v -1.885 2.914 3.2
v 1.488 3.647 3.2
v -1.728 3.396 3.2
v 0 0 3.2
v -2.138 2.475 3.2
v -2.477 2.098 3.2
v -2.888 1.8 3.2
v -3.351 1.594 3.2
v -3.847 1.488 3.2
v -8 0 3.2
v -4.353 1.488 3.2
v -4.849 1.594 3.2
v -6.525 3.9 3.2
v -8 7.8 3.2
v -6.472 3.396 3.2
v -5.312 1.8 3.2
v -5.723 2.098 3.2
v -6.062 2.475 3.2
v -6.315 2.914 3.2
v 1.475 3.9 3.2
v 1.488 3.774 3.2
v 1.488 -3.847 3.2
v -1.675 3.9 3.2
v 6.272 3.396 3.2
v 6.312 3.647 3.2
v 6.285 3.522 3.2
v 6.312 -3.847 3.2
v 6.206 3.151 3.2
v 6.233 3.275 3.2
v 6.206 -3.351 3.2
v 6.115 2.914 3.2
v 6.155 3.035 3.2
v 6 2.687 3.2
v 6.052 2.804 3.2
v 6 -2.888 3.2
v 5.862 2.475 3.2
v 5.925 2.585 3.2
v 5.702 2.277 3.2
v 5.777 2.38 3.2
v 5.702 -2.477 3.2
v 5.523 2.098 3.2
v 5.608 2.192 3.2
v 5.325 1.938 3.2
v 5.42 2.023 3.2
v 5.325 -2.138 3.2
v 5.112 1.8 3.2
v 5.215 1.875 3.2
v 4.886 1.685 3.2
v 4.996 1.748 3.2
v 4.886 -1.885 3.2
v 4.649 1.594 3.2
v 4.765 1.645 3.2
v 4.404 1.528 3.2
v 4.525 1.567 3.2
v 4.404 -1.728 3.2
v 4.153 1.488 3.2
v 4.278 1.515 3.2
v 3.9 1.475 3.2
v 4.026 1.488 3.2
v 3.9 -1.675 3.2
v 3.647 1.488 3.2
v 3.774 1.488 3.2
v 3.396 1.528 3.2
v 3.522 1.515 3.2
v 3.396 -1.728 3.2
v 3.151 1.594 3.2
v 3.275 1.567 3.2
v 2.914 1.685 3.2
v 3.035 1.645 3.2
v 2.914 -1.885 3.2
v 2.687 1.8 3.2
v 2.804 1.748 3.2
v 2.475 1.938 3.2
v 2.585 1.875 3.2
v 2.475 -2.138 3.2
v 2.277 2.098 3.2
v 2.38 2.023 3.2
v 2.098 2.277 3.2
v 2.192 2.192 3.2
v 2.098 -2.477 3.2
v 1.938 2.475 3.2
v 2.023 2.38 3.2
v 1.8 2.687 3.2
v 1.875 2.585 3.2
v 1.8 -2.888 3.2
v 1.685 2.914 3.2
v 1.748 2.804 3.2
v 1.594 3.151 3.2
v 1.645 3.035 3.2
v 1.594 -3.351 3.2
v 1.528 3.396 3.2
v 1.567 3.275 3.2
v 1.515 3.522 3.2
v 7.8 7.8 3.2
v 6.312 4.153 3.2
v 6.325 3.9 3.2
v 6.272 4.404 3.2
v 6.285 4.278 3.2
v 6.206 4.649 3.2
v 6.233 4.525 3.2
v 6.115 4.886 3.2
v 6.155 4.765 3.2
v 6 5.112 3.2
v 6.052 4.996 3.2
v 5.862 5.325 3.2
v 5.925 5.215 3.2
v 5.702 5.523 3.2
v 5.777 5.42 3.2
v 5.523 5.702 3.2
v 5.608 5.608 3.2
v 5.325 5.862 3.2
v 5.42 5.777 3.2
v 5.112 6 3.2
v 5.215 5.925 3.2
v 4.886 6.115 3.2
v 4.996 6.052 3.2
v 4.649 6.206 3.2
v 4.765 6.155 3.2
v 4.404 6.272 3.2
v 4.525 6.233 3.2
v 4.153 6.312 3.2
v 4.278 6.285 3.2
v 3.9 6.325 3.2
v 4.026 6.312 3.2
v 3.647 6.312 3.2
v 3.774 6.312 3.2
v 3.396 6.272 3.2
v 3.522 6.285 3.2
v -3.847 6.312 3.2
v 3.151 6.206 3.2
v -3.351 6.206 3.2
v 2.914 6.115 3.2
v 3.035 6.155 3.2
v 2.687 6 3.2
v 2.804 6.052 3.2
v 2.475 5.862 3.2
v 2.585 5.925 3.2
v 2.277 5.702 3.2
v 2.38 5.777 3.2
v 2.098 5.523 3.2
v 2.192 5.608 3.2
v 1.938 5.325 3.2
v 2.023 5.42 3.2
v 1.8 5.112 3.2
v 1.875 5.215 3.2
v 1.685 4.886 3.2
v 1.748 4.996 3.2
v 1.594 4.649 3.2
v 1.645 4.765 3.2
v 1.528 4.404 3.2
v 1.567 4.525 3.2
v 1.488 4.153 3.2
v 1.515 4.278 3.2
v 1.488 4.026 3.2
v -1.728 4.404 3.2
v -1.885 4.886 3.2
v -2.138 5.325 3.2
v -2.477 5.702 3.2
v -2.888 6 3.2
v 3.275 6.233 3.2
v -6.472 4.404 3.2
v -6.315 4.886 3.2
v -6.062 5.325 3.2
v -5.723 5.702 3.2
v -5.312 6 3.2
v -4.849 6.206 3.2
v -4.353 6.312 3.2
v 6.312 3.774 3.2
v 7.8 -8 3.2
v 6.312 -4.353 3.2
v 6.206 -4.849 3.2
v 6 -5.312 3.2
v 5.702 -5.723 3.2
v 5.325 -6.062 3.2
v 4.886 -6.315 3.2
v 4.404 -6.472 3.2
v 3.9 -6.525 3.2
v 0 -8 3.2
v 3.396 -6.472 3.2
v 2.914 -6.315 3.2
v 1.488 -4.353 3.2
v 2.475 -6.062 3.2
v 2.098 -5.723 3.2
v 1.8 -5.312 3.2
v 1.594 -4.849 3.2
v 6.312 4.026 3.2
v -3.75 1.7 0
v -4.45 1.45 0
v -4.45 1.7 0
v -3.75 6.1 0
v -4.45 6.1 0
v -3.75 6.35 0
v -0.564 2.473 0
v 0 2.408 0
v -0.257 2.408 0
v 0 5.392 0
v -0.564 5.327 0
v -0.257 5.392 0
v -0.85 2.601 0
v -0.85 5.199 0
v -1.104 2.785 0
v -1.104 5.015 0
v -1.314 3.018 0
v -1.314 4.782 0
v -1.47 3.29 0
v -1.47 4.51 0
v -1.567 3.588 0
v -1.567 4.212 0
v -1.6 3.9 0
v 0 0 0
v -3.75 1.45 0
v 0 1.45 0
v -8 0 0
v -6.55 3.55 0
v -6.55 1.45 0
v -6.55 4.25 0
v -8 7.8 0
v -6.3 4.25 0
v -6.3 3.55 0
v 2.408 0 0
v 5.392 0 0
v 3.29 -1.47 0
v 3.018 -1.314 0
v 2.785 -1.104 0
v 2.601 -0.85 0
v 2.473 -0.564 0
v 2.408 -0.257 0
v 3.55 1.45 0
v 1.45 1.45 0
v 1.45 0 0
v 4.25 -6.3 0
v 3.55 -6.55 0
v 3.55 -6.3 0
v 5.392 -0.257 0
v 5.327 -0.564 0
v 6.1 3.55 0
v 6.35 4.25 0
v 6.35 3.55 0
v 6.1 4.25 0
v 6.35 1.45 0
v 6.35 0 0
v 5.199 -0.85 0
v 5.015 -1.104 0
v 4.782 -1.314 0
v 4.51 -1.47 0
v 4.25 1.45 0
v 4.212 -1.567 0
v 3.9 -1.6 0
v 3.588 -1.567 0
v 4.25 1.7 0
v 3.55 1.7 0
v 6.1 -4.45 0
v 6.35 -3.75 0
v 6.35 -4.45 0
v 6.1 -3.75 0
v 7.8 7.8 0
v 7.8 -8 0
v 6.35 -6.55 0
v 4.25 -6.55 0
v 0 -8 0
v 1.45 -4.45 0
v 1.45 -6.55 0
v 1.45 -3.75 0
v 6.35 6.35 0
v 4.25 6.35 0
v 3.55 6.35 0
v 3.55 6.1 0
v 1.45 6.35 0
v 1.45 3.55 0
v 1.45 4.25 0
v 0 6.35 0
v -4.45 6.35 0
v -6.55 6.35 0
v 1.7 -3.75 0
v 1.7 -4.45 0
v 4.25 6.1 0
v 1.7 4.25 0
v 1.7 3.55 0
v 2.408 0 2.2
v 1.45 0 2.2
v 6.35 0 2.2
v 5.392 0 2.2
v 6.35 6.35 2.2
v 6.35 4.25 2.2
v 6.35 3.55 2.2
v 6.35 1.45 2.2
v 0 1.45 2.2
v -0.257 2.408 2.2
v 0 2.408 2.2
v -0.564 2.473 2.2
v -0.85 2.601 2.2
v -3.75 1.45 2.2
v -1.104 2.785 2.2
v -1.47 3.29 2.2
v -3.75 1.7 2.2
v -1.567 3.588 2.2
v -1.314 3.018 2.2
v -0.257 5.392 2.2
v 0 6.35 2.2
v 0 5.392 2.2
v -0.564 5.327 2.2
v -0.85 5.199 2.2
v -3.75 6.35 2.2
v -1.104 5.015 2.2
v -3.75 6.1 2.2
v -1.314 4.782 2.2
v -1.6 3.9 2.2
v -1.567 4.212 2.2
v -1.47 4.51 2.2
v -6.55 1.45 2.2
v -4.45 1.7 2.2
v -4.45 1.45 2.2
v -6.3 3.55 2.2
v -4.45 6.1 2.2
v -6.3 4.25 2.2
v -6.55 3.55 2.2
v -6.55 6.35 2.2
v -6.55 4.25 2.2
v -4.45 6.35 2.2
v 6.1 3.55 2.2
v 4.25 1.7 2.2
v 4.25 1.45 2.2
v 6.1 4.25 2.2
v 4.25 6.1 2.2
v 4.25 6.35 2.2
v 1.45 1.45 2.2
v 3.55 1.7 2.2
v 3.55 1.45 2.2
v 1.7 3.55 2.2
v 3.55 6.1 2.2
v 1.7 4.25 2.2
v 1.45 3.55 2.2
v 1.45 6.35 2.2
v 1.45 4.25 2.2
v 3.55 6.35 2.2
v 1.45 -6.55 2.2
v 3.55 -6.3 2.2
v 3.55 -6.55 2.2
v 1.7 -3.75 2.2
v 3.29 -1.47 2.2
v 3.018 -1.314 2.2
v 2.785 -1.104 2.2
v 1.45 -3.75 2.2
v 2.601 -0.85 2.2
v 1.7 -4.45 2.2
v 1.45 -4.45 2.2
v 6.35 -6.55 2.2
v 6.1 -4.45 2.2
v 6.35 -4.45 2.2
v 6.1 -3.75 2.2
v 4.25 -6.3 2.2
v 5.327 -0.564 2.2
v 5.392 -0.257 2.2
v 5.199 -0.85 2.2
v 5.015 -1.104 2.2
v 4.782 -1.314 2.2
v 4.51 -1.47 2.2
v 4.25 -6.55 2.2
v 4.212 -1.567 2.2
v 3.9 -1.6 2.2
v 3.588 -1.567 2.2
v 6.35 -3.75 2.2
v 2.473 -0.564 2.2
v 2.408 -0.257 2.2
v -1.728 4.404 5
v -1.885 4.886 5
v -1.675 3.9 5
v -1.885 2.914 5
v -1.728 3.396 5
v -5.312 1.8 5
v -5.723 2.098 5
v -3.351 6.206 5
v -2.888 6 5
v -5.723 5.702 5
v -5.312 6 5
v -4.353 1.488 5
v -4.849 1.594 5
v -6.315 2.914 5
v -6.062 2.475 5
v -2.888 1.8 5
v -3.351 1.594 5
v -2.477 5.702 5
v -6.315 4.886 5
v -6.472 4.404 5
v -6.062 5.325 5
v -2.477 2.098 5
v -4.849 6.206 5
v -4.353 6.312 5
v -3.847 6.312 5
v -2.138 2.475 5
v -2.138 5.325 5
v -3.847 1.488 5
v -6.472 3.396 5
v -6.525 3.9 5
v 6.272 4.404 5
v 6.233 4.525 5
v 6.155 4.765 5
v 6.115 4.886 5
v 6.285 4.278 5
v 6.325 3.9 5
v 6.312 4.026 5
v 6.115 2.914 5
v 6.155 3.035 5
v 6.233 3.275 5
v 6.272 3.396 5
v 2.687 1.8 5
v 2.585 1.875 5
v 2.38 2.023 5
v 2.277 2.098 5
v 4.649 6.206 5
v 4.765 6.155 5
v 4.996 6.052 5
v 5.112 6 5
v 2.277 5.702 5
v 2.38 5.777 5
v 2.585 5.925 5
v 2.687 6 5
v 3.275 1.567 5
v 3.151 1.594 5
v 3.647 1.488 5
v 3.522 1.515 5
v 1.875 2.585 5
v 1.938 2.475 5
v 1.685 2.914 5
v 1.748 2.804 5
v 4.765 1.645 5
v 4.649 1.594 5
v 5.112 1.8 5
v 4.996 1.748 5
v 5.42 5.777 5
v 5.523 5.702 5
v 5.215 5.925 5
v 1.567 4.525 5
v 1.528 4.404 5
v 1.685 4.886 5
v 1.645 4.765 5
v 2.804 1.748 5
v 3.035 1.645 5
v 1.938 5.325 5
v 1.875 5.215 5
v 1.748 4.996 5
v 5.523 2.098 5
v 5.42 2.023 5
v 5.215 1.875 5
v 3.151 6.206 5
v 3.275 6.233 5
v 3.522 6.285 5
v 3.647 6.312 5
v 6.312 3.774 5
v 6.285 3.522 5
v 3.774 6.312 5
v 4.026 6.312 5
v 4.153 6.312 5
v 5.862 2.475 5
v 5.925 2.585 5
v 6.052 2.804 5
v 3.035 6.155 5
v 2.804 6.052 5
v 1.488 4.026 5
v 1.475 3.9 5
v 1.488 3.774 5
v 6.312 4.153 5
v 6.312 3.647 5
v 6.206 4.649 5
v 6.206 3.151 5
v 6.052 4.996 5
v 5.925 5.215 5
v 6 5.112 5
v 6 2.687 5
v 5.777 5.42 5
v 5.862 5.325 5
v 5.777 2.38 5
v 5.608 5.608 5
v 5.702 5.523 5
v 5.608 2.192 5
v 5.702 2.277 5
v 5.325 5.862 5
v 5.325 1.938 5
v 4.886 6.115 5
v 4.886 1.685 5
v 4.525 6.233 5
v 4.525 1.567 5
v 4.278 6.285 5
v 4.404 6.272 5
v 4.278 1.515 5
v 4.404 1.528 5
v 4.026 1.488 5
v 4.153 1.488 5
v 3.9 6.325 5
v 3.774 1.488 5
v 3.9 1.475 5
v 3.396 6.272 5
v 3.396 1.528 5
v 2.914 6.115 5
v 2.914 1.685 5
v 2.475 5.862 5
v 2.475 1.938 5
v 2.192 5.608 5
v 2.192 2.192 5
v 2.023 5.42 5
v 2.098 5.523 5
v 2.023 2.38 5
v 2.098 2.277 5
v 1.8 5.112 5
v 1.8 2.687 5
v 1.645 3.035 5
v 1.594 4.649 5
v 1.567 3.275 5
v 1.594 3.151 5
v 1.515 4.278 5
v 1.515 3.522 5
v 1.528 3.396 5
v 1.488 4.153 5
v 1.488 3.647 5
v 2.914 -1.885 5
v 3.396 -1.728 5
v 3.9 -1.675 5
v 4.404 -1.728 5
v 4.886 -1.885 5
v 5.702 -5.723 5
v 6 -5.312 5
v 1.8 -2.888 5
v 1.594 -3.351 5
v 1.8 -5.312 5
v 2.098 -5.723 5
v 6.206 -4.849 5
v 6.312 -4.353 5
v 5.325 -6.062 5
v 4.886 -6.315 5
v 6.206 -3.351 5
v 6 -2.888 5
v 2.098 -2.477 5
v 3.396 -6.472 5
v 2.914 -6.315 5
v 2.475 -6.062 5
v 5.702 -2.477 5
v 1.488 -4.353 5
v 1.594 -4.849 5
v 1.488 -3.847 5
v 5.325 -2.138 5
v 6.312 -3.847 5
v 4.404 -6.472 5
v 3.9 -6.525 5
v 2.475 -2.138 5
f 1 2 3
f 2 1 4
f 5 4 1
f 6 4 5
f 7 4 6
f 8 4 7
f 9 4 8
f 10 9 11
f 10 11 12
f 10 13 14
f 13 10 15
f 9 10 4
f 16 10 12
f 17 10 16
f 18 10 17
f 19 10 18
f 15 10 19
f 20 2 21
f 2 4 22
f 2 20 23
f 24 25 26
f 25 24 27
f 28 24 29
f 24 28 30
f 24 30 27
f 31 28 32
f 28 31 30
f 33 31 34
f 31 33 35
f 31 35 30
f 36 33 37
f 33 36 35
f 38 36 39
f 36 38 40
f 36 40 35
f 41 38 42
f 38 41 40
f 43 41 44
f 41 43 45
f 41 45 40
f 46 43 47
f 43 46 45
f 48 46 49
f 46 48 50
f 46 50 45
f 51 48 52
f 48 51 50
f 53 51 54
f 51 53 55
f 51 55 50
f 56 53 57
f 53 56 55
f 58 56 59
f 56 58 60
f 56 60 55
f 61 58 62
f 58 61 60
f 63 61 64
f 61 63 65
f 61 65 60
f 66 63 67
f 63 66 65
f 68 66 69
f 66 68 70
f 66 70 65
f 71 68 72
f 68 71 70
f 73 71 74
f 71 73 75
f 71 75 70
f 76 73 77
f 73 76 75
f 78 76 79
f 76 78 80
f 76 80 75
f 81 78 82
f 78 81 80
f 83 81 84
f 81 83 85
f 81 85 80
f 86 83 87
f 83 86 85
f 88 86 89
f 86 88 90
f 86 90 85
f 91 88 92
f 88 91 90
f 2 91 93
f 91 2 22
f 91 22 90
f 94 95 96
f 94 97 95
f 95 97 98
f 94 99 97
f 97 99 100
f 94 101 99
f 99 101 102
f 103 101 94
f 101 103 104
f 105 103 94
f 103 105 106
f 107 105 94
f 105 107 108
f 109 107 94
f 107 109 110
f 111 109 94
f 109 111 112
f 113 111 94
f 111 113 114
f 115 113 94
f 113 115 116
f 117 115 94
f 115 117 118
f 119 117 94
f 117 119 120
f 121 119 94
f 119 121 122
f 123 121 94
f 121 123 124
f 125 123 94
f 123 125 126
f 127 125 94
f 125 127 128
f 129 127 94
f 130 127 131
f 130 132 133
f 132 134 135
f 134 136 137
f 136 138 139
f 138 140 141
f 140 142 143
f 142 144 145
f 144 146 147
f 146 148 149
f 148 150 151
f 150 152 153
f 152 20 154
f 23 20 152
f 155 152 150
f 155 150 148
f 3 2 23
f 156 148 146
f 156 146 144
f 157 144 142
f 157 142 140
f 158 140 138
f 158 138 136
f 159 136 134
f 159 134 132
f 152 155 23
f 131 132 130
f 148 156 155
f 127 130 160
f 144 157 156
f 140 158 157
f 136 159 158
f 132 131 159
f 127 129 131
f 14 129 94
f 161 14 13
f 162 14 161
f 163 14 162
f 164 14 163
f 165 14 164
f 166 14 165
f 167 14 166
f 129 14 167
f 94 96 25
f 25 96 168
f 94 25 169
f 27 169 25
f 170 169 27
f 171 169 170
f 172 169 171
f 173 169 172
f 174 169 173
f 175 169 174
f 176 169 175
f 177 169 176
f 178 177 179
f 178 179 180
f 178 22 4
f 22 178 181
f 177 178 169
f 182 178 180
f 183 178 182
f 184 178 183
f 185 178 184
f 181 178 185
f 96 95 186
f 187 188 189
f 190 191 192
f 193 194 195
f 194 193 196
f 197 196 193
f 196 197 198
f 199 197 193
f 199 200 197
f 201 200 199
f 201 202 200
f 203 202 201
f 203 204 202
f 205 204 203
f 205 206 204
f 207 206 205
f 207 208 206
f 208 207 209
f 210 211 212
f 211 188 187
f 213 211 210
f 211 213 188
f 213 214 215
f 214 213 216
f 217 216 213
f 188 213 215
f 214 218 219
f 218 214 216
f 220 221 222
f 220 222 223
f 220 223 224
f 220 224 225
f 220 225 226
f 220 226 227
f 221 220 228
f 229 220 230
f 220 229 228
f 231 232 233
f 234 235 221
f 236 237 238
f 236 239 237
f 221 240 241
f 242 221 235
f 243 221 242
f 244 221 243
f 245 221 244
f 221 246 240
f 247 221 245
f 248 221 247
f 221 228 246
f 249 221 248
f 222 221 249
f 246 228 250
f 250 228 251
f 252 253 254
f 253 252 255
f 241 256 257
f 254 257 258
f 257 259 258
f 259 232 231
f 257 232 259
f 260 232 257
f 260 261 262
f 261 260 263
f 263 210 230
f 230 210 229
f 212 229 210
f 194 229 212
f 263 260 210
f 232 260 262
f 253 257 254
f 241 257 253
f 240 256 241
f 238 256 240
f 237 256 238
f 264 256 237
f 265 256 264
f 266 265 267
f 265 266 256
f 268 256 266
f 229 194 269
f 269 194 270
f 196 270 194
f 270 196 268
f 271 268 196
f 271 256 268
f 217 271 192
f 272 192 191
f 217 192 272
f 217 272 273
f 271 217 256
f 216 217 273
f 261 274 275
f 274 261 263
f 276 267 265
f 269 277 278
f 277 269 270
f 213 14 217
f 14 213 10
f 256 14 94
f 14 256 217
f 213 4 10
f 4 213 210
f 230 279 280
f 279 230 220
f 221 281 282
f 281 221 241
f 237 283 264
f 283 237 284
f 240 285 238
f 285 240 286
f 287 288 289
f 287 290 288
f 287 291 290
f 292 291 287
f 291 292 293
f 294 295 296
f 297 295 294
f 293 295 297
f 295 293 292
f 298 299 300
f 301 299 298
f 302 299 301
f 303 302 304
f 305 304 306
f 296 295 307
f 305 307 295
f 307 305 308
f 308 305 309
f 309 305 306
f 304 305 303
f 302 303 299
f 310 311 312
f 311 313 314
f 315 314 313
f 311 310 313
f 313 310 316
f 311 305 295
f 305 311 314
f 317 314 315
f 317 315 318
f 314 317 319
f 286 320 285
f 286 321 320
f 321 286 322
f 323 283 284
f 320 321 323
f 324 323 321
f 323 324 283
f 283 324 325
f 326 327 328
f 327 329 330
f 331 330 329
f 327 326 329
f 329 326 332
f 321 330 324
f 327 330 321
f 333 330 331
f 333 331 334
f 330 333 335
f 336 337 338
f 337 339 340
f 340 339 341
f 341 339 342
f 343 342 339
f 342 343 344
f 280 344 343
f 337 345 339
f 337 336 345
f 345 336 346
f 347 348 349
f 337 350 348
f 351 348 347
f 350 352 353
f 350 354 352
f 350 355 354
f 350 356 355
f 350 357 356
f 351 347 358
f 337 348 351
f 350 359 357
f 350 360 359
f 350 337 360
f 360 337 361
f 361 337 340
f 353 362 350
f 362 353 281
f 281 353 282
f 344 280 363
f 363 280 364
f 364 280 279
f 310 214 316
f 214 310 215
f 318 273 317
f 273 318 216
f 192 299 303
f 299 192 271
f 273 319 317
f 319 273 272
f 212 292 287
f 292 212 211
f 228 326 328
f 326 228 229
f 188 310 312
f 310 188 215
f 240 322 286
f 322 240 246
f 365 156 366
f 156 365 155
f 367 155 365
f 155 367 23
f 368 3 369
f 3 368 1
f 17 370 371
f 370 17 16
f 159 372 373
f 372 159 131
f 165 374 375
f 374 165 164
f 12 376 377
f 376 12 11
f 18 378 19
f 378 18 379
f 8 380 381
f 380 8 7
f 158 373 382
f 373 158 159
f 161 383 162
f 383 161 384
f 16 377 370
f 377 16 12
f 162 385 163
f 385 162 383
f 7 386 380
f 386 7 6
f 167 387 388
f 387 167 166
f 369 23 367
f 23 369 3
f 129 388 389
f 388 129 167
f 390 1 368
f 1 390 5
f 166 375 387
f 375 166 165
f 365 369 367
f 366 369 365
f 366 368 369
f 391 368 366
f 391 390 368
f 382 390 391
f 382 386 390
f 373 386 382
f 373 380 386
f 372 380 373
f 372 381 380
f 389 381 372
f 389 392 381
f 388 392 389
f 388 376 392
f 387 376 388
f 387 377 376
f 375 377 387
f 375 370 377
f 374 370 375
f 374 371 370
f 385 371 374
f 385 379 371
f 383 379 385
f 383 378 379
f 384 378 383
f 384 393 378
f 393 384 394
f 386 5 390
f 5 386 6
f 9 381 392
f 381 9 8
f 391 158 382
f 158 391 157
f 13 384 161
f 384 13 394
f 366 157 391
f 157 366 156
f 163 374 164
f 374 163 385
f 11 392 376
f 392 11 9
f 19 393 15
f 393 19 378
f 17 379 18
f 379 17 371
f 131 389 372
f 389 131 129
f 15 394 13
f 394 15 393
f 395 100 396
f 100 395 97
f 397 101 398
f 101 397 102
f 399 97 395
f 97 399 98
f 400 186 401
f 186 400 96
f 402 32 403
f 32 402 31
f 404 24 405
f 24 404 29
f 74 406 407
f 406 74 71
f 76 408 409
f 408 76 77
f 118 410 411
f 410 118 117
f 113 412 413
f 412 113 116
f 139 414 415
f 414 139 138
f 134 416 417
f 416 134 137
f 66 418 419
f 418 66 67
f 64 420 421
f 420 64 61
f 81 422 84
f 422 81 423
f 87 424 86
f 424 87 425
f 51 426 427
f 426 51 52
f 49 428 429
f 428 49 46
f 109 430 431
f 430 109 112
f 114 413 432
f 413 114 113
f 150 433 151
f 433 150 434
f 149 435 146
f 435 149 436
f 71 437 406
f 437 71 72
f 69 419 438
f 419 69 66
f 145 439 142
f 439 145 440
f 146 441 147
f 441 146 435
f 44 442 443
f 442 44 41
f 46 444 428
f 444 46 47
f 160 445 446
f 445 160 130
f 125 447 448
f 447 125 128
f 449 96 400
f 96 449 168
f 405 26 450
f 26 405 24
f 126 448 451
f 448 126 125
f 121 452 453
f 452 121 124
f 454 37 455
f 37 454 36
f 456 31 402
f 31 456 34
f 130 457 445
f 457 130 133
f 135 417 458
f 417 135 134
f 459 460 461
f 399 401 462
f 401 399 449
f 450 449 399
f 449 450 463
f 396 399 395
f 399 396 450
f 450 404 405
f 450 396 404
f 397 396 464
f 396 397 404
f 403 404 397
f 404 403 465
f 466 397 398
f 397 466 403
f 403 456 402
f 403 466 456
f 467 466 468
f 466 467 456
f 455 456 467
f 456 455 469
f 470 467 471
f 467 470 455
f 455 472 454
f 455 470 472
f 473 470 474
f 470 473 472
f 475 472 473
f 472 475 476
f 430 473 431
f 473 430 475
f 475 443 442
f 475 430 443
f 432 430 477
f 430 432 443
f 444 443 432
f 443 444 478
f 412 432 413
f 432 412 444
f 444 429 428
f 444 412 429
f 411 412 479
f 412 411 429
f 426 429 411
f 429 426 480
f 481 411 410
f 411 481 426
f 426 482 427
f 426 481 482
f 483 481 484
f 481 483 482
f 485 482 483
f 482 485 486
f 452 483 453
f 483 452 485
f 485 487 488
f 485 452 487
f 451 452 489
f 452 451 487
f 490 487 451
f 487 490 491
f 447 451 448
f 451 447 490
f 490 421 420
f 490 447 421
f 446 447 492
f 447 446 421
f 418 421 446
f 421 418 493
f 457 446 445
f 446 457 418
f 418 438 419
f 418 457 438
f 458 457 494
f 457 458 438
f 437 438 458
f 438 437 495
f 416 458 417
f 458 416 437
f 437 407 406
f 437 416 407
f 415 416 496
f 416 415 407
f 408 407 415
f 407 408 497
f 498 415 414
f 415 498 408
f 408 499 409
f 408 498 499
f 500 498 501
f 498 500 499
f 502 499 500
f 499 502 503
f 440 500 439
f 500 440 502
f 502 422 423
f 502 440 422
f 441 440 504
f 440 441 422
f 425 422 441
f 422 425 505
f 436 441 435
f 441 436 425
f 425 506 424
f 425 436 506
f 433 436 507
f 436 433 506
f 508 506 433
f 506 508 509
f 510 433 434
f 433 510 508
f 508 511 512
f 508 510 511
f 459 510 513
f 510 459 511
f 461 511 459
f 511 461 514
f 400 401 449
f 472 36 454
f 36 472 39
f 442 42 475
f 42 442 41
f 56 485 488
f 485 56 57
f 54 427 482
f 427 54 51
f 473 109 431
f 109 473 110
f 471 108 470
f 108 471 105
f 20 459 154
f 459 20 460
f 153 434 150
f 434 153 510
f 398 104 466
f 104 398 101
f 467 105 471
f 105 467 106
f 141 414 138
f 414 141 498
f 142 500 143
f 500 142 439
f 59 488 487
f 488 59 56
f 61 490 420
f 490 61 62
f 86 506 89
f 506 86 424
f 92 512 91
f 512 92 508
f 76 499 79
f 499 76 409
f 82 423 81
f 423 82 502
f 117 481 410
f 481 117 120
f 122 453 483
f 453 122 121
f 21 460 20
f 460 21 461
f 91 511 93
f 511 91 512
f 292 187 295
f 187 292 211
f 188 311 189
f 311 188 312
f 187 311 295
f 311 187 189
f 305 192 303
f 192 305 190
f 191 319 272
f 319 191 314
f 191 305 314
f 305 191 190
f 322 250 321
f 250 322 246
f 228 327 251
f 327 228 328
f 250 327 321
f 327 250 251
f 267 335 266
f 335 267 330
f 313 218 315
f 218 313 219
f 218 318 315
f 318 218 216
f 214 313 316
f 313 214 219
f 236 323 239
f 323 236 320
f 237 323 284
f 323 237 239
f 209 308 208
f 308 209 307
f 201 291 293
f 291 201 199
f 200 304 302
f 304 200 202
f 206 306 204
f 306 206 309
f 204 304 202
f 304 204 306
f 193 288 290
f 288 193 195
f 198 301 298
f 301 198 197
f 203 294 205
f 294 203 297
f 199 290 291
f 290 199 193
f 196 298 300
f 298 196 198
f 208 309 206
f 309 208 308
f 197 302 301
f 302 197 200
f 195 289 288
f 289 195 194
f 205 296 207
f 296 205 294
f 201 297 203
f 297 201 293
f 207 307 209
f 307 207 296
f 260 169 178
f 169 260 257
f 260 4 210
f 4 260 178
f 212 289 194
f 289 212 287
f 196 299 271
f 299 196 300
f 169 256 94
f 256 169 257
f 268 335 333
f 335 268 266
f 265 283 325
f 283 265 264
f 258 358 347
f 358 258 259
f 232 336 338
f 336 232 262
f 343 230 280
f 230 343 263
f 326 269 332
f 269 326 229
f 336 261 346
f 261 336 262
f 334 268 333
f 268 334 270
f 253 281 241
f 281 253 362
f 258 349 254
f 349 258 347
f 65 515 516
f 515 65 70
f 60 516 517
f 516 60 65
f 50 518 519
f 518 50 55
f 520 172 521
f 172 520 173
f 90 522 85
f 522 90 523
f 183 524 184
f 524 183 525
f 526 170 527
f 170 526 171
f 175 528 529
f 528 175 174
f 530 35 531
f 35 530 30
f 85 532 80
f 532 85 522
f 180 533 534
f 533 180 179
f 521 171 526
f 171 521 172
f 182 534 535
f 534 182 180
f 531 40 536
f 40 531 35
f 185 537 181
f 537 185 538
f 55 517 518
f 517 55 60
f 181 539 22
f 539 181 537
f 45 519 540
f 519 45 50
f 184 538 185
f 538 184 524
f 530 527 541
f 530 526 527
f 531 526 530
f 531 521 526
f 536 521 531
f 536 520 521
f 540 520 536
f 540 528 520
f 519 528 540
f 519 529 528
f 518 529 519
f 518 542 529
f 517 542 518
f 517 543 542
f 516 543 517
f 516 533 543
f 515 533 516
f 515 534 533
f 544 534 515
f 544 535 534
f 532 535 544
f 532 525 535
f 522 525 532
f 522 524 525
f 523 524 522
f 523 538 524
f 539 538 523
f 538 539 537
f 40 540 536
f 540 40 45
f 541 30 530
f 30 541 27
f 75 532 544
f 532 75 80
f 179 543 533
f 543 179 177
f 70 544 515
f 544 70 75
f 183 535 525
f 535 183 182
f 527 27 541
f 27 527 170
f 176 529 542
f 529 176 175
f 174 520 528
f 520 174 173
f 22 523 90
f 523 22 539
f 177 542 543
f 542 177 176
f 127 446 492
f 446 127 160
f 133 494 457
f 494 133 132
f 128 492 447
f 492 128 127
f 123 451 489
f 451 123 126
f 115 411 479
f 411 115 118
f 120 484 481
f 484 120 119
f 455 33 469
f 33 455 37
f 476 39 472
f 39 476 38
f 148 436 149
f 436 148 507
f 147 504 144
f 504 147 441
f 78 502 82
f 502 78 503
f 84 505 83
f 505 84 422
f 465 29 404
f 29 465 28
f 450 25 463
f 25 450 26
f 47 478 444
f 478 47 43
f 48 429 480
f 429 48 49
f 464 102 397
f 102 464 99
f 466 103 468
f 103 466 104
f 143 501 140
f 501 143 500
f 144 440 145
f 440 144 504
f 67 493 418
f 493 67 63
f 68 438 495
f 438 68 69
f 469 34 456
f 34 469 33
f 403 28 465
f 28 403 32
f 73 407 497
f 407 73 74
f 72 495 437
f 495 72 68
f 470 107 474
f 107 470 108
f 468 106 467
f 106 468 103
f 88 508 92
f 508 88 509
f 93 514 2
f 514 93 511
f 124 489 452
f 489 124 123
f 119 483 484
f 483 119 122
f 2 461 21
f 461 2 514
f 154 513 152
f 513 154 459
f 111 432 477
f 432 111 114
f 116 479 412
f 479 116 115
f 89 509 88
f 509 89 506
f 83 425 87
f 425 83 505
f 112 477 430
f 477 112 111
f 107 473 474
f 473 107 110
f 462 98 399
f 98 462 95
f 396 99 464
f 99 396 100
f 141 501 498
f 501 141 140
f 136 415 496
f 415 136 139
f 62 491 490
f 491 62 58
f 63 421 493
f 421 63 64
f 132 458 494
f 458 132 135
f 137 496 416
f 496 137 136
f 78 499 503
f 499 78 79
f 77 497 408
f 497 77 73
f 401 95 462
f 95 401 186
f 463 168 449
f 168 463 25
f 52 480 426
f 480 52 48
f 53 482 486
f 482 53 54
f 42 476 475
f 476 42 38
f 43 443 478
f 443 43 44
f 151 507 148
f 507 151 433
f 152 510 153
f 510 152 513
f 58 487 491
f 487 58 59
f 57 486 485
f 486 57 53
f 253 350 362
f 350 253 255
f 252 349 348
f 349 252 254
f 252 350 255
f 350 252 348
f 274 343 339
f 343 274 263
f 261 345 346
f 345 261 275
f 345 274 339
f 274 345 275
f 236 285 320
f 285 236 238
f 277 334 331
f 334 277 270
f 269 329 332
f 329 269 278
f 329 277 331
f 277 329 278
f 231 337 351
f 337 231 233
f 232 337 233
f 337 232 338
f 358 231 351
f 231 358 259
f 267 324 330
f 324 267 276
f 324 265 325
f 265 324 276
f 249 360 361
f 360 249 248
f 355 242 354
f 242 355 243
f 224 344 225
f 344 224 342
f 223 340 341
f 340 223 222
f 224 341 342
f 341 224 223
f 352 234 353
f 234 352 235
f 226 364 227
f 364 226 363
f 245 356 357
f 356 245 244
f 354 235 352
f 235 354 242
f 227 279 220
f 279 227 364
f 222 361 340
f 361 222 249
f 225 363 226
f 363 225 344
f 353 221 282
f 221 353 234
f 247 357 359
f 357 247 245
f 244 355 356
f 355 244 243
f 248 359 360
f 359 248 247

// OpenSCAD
include <LEGO.scad>;
color( "green" ) 
        uncenter(1, 0, 0) 
            rotate([0, 0, 0]) 
                block(
                    dual_sided=false,
                    width=1,
                    length=2,
                    height=1/3
                );
color( "green" ) 
        uncenter(0, 1, 0) 
            rotate([0, 0, 90]) 
                block(
                    dual_sided=false,
                    width=1,
                    length=2,
                    height=1/3
                );                
